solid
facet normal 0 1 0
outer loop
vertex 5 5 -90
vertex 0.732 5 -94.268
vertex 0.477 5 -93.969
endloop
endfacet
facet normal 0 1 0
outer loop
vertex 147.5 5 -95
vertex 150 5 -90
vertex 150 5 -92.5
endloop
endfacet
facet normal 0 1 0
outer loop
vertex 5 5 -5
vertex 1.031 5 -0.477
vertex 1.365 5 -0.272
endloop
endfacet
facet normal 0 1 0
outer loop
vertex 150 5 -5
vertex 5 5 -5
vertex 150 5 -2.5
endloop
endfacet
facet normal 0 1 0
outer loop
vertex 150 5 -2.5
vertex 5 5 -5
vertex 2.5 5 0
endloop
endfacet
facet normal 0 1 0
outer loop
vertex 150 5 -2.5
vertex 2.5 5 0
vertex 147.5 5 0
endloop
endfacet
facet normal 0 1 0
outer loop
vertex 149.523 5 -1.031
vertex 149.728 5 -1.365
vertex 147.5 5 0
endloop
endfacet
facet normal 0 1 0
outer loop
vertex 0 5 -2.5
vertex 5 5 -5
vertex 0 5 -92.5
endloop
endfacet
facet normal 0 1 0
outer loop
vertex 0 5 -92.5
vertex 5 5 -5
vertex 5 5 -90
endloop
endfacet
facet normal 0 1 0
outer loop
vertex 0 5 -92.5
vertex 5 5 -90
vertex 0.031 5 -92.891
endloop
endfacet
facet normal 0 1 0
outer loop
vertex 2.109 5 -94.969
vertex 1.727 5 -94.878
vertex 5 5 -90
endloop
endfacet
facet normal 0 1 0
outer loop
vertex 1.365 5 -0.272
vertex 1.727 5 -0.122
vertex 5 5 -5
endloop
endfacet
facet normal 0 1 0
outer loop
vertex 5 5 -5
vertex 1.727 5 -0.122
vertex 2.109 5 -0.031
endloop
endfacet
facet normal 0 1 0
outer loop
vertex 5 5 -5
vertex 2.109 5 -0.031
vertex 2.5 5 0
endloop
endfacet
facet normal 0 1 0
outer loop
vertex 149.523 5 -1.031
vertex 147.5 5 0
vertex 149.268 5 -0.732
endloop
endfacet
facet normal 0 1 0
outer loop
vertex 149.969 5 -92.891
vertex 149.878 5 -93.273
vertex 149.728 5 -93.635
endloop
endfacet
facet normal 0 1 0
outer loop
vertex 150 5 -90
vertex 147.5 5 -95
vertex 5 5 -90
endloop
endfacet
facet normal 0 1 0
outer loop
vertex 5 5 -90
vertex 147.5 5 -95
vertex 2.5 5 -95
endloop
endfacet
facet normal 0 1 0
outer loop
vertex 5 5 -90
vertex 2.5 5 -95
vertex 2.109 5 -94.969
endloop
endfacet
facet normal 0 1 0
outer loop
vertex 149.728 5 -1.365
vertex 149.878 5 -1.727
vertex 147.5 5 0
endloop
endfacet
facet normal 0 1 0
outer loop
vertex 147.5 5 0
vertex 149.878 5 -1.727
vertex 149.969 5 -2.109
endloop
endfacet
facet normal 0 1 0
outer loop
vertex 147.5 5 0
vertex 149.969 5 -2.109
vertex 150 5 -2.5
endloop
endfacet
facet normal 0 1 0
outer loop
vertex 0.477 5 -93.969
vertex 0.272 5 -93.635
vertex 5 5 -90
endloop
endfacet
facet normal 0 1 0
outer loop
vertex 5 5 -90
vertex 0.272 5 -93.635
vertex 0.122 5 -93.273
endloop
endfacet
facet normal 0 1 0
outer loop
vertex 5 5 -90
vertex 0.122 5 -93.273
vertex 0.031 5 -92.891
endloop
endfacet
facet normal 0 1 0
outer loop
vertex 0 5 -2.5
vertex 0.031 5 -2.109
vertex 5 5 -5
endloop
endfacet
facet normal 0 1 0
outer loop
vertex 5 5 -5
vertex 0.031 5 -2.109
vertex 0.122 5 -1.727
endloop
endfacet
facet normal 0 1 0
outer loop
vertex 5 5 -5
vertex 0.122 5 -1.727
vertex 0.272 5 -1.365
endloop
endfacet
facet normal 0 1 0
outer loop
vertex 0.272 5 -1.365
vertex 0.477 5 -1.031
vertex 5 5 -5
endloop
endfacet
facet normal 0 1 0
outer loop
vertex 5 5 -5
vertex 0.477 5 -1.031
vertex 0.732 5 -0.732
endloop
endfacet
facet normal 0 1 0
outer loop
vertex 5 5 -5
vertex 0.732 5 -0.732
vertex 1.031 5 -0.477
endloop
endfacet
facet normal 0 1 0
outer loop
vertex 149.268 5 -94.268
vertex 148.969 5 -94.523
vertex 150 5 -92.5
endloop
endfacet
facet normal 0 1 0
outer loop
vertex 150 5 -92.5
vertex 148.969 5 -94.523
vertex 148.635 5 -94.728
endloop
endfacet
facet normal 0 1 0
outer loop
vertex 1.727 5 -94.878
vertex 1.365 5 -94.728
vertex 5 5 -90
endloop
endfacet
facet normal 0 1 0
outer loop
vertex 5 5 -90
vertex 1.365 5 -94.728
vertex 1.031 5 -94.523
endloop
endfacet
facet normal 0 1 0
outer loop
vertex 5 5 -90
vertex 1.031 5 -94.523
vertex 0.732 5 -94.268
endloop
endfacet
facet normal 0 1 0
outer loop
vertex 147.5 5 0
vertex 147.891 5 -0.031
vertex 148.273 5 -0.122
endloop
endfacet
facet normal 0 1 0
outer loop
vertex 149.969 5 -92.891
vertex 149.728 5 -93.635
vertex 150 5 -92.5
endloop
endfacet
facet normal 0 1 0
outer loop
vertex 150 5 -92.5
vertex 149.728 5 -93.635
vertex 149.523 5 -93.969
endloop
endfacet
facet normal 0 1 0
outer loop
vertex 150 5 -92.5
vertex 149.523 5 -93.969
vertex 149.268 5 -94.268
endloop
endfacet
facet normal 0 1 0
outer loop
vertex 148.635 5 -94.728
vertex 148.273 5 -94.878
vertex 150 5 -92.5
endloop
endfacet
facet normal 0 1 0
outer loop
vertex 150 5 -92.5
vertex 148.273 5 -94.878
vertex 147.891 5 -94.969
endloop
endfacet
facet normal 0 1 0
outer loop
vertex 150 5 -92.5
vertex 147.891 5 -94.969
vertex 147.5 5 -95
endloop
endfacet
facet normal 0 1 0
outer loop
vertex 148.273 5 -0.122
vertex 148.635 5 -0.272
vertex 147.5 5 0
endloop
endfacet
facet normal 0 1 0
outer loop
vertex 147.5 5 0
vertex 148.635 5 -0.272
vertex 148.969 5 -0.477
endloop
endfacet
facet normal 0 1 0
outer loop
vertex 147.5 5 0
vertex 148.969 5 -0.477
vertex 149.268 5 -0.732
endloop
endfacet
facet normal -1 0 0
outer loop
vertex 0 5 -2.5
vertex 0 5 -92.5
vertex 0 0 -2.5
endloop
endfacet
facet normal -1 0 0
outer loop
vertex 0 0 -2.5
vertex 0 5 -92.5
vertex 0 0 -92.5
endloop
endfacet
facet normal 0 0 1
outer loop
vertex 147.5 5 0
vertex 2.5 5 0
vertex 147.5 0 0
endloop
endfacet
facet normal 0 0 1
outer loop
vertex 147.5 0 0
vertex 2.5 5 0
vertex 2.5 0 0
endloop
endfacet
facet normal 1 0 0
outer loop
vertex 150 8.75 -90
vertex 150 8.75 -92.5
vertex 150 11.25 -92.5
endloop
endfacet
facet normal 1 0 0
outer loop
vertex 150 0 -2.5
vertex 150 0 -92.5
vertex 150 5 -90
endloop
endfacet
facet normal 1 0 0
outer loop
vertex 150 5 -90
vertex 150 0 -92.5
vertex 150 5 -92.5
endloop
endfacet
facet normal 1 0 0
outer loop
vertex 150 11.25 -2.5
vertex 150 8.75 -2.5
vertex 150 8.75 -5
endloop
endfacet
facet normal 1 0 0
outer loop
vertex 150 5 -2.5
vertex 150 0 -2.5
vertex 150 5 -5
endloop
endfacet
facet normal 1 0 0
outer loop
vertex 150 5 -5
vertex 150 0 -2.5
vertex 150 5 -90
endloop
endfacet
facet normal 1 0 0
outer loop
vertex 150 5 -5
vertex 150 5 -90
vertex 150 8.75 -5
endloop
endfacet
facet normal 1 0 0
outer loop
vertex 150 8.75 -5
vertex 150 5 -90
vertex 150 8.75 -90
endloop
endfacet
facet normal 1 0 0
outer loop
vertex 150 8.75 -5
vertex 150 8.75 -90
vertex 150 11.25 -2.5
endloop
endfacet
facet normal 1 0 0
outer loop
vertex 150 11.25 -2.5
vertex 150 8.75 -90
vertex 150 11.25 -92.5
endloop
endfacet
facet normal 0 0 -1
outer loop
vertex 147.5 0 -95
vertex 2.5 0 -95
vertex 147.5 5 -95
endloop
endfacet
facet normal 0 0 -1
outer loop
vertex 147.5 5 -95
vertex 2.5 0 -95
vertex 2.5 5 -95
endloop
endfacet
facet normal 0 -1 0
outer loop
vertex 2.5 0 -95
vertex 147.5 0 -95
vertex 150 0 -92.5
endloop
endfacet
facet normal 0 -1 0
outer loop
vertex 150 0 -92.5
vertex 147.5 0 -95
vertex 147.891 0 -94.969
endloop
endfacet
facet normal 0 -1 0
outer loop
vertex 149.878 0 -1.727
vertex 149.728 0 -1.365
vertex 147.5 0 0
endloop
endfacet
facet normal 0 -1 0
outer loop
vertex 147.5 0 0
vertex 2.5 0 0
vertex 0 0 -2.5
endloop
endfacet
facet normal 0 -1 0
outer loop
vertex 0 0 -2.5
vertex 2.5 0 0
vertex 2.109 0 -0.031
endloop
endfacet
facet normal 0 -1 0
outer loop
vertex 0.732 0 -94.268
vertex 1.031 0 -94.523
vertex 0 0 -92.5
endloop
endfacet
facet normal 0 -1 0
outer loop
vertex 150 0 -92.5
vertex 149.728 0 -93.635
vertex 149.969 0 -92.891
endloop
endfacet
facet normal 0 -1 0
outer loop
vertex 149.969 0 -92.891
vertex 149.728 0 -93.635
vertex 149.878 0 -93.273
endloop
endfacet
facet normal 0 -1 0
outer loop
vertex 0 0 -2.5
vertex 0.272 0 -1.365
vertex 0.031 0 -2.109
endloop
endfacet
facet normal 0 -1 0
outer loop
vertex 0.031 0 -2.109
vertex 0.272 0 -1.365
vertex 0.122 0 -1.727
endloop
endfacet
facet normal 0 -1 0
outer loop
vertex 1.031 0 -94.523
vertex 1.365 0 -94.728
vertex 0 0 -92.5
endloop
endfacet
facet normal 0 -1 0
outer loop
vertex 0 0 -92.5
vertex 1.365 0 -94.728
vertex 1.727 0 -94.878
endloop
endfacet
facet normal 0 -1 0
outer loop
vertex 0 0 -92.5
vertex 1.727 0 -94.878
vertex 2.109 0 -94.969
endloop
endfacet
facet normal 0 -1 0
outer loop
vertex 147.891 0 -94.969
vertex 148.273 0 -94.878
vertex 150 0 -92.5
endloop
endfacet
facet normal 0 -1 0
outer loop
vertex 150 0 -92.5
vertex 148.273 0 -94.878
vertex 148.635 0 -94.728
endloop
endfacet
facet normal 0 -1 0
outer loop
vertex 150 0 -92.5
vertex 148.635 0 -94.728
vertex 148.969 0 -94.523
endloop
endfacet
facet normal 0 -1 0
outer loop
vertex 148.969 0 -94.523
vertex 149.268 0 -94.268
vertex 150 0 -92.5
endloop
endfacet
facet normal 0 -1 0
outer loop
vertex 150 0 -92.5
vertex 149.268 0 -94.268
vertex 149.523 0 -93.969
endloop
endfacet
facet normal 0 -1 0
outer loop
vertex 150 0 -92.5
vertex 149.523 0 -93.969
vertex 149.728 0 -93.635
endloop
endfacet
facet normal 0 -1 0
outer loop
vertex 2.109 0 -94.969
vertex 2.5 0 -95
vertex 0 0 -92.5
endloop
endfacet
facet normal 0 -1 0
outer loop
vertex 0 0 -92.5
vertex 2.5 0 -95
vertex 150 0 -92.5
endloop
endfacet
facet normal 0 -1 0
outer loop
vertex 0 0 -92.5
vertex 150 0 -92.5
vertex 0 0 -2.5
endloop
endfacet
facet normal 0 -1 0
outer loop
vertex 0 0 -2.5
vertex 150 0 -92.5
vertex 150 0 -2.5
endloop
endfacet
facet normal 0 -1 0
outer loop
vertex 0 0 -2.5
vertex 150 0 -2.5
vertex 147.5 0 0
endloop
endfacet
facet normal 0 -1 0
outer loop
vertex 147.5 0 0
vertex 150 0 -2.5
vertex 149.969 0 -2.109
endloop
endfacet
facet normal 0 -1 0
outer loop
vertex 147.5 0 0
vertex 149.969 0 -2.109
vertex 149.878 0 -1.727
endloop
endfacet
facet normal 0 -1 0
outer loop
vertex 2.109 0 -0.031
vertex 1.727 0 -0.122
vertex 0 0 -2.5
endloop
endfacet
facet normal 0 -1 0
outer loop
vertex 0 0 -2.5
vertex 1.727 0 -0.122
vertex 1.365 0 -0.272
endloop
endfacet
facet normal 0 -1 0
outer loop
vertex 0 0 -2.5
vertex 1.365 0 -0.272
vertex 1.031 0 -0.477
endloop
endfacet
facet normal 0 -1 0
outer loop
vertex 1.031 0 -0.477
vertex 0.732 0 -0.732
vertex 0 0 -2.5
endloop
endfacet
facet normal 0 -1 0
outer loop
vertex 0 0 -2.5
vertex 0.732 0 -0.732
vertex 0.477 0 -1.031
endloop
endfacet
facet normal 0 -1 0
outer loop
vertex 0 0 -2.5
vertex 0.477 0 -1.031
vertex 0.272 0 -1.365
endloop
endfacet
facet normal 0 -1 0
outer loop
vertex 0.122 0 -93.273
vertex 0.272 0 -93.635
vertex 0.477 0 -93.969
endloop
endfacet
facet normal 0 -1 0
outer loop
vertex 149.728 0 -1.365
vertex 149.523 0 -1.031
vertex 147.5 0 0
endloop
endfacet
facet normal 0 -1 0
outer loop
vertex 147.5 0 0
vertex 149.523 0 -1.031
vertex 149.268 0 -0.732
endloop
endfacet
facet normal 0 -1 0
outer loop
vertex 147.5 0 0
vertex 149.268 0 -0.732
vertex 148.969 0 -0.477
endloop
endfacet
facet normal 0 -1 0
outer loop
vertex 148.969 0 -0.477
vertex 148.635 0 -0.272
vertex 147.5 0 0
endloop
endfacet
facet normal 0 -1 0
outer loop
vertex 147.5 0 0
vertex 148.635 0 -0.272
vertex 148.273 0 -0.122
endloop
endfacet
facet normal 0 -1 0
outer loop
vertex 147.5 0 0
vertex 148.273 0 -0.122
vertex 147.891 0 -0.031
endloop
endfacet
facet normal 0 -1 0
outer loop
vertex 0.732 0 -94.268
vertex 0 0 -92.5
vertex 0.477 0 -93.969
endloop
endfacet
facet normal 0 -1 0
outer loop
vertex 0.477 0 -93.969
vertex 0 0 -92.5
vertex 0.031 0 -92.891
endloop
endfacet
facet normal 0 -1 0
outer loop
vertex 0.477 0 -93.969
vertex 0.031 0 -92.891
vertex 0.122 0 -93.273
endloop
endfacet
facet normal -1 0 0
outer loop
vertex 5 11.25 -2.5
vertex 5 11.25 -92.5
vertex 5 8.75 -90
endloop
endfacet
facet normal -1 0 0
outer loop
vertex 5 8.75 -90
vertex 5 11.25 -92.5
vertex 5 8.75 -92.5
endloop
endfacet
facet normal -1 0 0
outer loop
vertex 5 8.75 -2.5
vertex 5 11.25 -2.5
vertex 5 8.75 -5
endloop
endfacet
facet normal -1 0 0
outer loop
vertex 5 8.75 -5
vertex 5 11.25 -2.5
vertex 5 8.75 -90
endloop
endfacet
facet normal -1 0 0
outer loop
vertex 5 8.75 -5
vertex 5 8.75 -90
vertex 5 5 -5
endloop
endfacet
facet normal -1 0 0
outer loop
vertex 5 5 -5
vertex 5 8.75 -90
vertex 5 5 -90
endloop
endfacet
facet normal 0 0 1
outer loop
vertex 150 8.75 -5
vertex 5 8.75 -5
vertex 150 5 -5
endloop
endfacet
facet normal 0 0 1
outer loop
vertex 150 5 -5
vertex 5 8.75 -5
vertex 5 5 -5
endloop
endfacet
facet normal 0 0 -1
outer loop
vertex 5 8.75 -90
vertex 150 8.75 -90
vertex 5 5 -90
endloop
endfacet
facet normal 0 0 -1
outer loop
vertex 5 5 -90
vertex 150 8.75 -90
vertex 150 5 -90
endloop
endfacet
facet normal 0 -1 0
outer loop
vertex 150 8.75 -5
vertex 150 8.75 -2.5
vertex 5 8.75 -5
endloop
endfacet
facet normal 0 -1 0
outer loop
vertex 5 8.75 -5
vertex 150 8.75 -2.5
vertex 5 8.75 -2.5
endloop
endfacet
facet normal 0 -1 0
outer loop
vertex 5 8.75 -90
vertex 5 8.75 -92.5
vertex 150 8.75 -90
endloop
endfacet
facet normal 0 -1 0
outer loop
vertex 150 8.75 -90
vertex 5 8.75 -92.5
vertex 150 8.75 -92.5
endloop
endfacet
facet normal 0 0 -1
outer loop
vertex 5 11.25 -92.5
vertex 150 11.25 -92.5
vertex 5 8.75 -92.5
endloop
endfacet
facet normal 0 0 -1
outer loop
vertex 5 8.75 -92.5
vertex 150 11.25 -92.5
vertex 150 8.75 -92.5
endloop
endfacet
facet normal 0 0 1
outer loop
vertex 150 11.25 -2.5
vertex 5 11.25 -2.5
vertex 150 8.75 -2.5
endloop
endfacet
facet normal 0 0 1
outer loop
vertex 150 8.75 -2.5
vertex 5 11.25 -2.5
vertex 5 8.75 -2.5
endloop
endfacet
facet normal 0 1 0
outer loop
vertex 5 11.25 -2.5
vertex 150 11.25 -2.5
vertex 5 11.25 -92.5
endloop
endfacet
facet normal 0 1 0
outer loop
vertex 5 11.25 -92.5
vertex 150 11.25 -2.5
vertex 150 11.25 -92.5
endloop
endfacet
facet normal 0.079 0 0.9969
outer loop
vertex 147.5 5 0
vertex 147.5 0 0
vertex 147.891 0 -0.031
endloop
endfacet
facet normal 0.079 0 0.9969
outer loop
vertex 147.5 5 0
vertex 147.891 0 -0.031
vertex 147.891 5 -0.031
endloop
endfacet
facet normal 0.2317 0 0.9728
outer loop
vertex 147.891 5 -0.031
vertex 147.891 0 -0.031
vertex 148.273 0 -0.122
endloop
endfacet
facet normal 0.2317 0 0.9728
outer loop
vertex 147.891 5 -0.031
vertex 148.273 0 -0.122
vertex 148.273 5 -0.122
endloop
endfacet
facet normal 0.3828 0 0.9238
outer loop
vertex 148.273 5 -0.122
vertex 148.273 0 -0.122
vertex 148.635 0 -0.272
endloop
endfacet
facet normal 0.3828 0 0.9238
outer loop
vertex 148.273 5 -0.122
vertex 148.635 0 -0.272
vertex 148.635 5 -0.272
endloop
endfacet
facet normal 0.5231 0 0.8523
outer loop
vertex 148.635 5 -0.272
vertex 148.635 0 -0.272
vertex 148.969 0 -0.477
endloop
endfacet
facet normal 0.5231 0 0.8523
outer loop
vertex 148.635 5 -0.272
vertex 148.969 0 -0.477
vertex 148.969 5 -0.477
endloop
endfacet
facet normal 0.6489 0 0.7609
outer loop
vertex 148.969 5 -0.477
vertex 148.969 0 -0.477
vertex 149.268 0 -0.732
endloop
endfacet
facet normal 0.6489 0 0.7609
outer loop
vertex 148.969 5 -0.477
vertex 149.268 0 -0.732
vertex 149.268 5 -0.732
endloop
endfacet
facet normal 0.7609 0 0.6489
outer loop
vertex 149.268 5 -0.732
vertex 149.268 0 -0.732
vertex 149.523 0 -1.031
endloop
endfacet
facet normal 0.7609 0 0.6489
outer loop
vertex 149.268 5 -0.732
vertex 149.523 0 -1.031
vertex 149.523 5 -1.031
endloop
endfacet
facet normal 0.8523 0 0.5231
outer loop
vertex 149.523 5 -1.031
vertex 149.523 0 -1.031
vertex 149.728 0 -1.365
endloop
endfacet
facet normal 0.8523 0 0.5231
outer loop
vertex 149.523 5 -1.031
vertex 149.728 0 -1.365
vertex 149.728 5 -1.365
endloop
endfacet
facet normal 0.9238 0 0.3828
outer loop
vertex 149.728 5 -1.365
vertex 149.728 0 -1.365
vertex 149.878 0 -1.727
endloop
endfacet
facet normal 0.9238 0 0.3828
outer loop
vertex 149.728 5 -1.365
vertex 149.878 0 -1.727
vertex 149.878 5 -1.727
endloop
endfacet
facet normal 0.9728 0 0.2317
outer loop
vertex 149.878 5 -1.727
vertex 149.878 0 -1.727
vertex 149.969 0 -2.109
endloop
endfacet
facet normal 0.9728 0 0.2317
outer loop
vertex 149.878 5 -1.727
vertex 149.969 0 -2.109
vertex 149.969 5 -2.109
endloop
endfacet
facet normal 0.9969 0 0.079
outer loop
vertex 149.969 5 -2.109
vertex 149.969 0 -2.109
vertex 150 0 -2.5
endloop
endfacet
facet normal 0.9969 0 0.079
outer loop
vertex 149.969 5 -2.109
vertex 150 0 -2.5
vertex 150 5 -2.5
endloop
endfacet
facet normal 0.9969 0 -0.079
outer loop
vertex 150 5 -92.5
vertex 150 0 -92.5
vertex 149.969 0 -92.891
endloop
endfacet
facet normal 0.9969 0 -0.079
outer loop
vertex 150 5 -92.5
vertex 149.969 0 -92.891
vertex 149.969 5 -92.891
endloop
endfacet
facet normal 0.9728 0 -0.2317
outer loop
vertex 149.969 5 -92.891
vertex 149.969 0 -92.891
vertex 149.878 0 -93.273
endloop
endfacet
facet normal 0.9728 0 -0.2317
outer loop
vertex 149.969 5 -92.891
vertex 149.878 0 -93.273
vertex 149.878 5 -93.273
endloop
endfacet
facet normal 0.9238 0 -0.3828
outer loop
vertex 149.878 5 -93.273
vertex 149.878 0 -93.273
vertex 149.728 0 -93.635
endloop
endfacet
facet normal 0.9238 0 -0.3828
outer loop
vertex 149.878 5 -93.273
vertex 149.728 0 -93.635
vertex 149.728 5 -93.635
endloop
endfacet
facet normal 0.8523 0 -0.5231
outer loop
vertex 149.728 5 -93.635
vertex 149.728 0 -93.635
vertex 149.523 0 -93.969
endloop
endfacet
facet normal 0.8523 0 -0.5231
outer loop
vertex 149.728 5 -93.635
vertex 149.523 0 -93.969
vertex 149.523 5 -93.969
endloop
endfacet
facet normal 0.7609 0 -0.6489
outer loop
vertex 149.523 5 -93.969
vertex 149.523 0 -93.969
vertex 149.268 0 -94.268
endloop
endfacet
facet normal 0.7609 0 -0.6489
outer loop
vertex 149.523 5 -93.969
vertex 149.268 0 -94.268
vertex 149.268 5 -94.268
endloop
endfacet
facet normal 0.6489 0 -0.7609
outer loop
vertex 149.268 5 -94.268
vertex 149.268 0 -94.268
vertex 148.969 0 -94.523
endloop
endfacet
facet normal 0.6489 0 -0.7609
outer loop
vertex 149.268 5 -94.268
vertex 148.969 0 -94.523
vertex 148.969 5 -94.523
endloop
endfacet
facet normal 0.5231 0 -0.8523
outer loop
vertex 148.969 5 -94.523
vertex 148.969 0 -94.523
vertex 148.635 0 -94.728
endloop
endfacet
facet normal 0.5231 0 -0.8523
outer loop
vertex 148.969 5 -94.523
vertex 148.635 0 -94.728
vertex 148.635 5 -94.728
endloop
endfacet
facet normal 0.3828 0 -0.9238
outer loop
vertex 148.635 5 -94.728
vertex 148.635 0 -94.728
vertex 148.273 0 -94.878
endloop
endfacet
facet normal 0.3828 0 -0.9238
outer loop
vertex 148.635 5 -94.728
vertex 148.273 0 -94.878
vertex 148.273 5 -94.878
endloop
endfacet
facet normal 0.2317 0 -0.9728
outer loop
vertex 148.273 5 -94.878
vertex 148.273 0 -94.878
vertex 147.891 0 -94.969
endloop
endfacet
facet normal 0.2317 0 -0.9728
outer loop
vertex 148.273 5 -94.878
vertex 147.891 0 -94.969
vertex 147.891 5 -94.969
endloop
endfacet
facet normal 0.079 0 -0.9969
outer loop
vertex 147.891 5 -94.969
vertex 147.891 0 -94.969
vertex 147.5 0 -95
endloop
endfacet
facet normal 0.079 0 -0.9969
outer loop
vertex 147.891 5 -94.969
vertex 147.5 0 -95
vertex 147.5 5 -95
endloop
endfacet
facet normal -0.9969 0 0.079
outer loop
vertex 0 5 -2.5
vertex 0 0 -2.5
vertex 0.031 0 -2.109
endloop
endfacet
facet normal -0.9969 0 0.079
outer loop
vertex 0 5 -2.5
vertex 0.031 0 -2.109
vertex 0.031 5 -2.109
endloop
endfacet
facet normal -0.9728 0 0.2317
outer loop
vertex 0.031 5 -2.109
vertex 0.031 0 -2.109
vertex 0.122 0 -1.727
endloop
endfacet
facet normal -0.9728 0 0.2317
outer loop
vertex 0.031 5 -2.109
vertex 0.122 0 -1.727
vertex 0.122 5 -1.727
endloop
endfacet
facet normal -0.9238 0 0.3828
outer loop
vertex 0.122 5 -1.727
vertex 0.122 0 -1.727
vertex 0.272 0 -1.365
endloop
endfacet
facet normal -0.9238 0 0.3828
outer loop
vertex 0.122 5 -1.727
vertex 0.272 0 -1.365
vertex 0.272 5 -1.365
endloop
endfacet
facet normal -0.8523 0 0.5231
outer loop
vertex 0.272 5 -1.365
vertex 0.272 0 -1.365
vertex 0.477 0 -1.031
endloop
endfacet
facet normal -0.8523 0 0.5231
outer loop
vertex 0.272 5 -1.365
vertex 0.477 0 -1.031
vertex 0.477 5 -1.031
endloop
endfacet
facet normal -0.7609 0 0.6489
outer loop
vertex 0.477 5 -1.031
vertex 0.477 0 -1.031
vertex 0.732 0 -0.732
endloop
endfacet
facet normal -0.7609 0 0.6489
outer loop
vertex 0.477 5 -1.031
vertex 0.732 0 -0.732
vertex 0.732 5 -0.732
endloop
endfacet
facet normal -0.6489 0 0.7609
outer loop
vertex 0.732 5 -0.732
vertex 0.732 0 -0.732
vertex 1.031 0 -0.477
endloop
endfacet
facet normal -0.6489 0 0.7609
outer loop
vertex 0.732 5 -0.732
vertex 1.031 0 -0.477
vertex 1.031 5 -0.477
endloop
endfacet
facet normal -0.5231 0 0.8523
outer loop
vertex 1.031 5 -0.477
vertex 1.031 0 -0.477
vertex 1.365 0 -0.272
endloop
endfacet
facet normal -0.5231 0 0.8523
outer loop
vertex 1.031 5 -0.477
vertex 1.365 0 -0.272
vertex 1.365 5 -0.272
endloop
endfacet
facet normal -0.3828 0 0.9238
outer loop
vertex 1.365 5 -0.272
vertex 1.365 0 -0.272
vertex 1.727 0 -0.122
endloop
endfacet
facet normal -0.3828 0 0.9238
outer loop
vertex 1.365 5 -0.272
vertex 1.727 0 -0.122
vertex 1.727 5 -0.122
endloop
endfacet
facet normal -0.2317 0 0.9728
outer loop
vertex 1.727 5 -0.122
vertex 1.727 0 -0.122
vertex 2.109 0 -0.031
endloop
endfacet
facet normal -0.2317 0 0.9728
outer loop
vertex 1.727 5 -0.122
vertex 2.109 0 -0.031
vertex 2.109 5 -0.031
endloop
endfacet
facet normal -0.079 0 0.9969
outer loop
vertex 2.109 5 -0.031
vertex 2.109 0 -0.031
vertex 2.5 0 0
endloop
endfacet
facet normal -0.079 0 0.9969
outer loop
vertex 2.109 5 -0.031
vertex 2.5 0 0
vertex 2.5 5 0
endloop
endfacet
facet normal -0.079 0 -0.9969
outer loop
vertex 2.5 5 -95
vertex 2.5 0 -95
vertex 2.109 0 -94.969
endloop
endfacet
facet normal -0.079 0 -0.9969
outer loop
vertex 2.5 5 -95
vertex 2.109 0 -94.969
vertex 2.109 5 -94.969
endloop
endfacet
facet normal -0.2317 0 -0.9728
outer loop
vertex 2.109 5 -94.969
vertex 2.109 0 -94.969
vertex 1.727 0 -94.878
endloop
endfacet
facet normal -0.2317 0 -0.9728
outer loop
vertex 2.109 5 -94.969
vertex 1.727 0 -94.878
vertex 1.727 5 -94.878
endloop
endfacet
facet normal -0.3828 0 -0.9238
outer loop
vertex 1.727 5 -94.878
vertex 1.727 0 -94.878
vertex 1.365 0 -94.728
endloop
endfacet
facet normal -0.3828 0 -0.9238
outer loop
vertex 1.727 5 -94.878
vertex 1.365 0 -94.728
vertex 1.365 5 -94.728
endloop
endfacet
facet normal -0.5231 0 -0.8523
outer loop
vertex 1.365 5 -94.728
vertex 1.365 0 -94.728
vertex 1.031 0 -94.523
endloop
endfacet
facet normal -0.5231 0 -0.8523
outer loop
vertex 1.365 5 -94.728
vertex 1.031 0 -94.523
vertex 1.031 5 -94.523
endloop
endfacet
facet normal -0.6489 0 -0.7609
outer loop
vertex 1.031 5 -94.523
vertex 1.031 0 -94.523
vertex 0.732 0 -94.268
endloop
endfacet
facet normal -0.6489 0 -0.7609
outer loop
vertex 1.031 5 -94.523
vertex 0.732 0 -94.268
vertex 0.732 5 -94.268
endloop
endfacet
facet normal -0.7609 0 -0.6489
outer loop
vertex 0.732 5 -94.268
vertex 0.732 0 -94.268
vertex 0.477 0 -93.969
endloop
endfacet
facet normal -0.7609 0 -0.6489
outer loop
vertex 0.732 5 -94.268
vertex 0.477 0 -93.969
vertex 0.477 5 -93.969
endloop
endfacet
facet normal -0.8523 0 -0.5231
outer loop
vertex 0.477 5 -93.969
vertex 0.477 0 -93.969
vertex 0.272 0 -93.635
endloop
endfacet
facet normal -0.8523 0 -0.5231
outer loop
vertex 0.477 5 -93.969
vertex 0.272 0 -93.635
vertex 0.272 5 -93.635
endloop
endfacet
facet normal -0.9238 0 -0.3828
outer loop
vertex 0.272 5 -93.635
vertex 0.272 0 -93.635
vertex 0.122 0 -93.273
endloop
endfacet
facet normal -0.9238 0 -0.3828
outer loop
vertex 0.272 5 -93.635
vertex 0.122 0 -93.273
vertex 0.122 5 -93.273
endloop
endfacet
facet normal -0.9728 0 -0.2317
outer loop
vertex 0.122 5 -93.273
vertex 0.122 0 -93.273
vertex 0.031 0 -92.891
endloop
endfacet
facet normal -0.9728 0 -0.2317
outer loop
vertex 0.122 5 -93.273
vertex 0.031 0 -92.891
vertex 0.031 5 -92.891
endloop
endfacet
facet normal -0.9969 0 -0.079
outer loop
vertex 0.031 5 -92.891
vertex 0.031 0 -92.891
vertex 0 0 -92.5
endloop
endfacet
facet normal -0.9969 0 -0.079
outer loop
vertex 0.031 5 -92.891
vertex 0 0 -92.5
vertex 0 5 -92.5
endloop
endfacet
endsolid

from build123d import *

# Parameters (mm, degrees)
SKETCH1_W           = 150
SKETCH1_H           = 95
BOSS_EXTRUDE1_DEPTH = 5
SKETCH2_W           = 145
SKETCH2_H           = 85
BOSS_EXTRUDE2_DEPTH = 3.75
SKETCH3_W           = 145
SKETCH3_H           = 90
BOSS_EXTRUDE3_DEPTH = 2.5
FILLET2_R           = 2.5


with BuildPart() as part:
    # Sketch1 → Boss-Extrude1 (new body)
    with BuildSketch(Plane(origin=(0, 0, 0), x_dir=(1, 0, 0), z_dir=(0, 1, 0))):
        with Locations((75, 47.5)):
            Rectangle(SKETCH1_W, SKETCH1_H)
    extrude(amount=BOSS_EXTRUDE1_DEPTH)

    # Sketch2 → Boss-Extrude2 (add)
    with BuildSketch(Plane(origin=(0, 5, 0), x_dir=(1, 0, 0), z_dir=(0, 1, 0))):
        with Locations((77.5, 47.5)):
            Rectangle(SKETCH2_W, SKETCH2_H)
    extrude(amount=BOSS_EXTRUDE2_DEPTH)

    # Sketch3 → Boss-Extrude3 (add)
    with BuildSketch(Plane(origin=(0, 8.75, 0), x_dir=(1, 0, 0), z_dir=(0, 1, 0))):
        with Locations((77.5, 47.5)):
            Rectangle(SKETCH3_W, SKETCH3_H)
    extrude(amount=BOSS_EXTRUDE3_DEPTH)

    # Fillet2
    fillet2_edges = [part.edges().sort_by_distance(p)[0] for p in [
        (0, 2.5, -95),
        (150, 2.5, -95),
        (150, 2.5, 0),
        (0, 2.5, 0),
    ]]
    fillet(fillet2_edges, radius=FILLET2_R)


solid = part.part
